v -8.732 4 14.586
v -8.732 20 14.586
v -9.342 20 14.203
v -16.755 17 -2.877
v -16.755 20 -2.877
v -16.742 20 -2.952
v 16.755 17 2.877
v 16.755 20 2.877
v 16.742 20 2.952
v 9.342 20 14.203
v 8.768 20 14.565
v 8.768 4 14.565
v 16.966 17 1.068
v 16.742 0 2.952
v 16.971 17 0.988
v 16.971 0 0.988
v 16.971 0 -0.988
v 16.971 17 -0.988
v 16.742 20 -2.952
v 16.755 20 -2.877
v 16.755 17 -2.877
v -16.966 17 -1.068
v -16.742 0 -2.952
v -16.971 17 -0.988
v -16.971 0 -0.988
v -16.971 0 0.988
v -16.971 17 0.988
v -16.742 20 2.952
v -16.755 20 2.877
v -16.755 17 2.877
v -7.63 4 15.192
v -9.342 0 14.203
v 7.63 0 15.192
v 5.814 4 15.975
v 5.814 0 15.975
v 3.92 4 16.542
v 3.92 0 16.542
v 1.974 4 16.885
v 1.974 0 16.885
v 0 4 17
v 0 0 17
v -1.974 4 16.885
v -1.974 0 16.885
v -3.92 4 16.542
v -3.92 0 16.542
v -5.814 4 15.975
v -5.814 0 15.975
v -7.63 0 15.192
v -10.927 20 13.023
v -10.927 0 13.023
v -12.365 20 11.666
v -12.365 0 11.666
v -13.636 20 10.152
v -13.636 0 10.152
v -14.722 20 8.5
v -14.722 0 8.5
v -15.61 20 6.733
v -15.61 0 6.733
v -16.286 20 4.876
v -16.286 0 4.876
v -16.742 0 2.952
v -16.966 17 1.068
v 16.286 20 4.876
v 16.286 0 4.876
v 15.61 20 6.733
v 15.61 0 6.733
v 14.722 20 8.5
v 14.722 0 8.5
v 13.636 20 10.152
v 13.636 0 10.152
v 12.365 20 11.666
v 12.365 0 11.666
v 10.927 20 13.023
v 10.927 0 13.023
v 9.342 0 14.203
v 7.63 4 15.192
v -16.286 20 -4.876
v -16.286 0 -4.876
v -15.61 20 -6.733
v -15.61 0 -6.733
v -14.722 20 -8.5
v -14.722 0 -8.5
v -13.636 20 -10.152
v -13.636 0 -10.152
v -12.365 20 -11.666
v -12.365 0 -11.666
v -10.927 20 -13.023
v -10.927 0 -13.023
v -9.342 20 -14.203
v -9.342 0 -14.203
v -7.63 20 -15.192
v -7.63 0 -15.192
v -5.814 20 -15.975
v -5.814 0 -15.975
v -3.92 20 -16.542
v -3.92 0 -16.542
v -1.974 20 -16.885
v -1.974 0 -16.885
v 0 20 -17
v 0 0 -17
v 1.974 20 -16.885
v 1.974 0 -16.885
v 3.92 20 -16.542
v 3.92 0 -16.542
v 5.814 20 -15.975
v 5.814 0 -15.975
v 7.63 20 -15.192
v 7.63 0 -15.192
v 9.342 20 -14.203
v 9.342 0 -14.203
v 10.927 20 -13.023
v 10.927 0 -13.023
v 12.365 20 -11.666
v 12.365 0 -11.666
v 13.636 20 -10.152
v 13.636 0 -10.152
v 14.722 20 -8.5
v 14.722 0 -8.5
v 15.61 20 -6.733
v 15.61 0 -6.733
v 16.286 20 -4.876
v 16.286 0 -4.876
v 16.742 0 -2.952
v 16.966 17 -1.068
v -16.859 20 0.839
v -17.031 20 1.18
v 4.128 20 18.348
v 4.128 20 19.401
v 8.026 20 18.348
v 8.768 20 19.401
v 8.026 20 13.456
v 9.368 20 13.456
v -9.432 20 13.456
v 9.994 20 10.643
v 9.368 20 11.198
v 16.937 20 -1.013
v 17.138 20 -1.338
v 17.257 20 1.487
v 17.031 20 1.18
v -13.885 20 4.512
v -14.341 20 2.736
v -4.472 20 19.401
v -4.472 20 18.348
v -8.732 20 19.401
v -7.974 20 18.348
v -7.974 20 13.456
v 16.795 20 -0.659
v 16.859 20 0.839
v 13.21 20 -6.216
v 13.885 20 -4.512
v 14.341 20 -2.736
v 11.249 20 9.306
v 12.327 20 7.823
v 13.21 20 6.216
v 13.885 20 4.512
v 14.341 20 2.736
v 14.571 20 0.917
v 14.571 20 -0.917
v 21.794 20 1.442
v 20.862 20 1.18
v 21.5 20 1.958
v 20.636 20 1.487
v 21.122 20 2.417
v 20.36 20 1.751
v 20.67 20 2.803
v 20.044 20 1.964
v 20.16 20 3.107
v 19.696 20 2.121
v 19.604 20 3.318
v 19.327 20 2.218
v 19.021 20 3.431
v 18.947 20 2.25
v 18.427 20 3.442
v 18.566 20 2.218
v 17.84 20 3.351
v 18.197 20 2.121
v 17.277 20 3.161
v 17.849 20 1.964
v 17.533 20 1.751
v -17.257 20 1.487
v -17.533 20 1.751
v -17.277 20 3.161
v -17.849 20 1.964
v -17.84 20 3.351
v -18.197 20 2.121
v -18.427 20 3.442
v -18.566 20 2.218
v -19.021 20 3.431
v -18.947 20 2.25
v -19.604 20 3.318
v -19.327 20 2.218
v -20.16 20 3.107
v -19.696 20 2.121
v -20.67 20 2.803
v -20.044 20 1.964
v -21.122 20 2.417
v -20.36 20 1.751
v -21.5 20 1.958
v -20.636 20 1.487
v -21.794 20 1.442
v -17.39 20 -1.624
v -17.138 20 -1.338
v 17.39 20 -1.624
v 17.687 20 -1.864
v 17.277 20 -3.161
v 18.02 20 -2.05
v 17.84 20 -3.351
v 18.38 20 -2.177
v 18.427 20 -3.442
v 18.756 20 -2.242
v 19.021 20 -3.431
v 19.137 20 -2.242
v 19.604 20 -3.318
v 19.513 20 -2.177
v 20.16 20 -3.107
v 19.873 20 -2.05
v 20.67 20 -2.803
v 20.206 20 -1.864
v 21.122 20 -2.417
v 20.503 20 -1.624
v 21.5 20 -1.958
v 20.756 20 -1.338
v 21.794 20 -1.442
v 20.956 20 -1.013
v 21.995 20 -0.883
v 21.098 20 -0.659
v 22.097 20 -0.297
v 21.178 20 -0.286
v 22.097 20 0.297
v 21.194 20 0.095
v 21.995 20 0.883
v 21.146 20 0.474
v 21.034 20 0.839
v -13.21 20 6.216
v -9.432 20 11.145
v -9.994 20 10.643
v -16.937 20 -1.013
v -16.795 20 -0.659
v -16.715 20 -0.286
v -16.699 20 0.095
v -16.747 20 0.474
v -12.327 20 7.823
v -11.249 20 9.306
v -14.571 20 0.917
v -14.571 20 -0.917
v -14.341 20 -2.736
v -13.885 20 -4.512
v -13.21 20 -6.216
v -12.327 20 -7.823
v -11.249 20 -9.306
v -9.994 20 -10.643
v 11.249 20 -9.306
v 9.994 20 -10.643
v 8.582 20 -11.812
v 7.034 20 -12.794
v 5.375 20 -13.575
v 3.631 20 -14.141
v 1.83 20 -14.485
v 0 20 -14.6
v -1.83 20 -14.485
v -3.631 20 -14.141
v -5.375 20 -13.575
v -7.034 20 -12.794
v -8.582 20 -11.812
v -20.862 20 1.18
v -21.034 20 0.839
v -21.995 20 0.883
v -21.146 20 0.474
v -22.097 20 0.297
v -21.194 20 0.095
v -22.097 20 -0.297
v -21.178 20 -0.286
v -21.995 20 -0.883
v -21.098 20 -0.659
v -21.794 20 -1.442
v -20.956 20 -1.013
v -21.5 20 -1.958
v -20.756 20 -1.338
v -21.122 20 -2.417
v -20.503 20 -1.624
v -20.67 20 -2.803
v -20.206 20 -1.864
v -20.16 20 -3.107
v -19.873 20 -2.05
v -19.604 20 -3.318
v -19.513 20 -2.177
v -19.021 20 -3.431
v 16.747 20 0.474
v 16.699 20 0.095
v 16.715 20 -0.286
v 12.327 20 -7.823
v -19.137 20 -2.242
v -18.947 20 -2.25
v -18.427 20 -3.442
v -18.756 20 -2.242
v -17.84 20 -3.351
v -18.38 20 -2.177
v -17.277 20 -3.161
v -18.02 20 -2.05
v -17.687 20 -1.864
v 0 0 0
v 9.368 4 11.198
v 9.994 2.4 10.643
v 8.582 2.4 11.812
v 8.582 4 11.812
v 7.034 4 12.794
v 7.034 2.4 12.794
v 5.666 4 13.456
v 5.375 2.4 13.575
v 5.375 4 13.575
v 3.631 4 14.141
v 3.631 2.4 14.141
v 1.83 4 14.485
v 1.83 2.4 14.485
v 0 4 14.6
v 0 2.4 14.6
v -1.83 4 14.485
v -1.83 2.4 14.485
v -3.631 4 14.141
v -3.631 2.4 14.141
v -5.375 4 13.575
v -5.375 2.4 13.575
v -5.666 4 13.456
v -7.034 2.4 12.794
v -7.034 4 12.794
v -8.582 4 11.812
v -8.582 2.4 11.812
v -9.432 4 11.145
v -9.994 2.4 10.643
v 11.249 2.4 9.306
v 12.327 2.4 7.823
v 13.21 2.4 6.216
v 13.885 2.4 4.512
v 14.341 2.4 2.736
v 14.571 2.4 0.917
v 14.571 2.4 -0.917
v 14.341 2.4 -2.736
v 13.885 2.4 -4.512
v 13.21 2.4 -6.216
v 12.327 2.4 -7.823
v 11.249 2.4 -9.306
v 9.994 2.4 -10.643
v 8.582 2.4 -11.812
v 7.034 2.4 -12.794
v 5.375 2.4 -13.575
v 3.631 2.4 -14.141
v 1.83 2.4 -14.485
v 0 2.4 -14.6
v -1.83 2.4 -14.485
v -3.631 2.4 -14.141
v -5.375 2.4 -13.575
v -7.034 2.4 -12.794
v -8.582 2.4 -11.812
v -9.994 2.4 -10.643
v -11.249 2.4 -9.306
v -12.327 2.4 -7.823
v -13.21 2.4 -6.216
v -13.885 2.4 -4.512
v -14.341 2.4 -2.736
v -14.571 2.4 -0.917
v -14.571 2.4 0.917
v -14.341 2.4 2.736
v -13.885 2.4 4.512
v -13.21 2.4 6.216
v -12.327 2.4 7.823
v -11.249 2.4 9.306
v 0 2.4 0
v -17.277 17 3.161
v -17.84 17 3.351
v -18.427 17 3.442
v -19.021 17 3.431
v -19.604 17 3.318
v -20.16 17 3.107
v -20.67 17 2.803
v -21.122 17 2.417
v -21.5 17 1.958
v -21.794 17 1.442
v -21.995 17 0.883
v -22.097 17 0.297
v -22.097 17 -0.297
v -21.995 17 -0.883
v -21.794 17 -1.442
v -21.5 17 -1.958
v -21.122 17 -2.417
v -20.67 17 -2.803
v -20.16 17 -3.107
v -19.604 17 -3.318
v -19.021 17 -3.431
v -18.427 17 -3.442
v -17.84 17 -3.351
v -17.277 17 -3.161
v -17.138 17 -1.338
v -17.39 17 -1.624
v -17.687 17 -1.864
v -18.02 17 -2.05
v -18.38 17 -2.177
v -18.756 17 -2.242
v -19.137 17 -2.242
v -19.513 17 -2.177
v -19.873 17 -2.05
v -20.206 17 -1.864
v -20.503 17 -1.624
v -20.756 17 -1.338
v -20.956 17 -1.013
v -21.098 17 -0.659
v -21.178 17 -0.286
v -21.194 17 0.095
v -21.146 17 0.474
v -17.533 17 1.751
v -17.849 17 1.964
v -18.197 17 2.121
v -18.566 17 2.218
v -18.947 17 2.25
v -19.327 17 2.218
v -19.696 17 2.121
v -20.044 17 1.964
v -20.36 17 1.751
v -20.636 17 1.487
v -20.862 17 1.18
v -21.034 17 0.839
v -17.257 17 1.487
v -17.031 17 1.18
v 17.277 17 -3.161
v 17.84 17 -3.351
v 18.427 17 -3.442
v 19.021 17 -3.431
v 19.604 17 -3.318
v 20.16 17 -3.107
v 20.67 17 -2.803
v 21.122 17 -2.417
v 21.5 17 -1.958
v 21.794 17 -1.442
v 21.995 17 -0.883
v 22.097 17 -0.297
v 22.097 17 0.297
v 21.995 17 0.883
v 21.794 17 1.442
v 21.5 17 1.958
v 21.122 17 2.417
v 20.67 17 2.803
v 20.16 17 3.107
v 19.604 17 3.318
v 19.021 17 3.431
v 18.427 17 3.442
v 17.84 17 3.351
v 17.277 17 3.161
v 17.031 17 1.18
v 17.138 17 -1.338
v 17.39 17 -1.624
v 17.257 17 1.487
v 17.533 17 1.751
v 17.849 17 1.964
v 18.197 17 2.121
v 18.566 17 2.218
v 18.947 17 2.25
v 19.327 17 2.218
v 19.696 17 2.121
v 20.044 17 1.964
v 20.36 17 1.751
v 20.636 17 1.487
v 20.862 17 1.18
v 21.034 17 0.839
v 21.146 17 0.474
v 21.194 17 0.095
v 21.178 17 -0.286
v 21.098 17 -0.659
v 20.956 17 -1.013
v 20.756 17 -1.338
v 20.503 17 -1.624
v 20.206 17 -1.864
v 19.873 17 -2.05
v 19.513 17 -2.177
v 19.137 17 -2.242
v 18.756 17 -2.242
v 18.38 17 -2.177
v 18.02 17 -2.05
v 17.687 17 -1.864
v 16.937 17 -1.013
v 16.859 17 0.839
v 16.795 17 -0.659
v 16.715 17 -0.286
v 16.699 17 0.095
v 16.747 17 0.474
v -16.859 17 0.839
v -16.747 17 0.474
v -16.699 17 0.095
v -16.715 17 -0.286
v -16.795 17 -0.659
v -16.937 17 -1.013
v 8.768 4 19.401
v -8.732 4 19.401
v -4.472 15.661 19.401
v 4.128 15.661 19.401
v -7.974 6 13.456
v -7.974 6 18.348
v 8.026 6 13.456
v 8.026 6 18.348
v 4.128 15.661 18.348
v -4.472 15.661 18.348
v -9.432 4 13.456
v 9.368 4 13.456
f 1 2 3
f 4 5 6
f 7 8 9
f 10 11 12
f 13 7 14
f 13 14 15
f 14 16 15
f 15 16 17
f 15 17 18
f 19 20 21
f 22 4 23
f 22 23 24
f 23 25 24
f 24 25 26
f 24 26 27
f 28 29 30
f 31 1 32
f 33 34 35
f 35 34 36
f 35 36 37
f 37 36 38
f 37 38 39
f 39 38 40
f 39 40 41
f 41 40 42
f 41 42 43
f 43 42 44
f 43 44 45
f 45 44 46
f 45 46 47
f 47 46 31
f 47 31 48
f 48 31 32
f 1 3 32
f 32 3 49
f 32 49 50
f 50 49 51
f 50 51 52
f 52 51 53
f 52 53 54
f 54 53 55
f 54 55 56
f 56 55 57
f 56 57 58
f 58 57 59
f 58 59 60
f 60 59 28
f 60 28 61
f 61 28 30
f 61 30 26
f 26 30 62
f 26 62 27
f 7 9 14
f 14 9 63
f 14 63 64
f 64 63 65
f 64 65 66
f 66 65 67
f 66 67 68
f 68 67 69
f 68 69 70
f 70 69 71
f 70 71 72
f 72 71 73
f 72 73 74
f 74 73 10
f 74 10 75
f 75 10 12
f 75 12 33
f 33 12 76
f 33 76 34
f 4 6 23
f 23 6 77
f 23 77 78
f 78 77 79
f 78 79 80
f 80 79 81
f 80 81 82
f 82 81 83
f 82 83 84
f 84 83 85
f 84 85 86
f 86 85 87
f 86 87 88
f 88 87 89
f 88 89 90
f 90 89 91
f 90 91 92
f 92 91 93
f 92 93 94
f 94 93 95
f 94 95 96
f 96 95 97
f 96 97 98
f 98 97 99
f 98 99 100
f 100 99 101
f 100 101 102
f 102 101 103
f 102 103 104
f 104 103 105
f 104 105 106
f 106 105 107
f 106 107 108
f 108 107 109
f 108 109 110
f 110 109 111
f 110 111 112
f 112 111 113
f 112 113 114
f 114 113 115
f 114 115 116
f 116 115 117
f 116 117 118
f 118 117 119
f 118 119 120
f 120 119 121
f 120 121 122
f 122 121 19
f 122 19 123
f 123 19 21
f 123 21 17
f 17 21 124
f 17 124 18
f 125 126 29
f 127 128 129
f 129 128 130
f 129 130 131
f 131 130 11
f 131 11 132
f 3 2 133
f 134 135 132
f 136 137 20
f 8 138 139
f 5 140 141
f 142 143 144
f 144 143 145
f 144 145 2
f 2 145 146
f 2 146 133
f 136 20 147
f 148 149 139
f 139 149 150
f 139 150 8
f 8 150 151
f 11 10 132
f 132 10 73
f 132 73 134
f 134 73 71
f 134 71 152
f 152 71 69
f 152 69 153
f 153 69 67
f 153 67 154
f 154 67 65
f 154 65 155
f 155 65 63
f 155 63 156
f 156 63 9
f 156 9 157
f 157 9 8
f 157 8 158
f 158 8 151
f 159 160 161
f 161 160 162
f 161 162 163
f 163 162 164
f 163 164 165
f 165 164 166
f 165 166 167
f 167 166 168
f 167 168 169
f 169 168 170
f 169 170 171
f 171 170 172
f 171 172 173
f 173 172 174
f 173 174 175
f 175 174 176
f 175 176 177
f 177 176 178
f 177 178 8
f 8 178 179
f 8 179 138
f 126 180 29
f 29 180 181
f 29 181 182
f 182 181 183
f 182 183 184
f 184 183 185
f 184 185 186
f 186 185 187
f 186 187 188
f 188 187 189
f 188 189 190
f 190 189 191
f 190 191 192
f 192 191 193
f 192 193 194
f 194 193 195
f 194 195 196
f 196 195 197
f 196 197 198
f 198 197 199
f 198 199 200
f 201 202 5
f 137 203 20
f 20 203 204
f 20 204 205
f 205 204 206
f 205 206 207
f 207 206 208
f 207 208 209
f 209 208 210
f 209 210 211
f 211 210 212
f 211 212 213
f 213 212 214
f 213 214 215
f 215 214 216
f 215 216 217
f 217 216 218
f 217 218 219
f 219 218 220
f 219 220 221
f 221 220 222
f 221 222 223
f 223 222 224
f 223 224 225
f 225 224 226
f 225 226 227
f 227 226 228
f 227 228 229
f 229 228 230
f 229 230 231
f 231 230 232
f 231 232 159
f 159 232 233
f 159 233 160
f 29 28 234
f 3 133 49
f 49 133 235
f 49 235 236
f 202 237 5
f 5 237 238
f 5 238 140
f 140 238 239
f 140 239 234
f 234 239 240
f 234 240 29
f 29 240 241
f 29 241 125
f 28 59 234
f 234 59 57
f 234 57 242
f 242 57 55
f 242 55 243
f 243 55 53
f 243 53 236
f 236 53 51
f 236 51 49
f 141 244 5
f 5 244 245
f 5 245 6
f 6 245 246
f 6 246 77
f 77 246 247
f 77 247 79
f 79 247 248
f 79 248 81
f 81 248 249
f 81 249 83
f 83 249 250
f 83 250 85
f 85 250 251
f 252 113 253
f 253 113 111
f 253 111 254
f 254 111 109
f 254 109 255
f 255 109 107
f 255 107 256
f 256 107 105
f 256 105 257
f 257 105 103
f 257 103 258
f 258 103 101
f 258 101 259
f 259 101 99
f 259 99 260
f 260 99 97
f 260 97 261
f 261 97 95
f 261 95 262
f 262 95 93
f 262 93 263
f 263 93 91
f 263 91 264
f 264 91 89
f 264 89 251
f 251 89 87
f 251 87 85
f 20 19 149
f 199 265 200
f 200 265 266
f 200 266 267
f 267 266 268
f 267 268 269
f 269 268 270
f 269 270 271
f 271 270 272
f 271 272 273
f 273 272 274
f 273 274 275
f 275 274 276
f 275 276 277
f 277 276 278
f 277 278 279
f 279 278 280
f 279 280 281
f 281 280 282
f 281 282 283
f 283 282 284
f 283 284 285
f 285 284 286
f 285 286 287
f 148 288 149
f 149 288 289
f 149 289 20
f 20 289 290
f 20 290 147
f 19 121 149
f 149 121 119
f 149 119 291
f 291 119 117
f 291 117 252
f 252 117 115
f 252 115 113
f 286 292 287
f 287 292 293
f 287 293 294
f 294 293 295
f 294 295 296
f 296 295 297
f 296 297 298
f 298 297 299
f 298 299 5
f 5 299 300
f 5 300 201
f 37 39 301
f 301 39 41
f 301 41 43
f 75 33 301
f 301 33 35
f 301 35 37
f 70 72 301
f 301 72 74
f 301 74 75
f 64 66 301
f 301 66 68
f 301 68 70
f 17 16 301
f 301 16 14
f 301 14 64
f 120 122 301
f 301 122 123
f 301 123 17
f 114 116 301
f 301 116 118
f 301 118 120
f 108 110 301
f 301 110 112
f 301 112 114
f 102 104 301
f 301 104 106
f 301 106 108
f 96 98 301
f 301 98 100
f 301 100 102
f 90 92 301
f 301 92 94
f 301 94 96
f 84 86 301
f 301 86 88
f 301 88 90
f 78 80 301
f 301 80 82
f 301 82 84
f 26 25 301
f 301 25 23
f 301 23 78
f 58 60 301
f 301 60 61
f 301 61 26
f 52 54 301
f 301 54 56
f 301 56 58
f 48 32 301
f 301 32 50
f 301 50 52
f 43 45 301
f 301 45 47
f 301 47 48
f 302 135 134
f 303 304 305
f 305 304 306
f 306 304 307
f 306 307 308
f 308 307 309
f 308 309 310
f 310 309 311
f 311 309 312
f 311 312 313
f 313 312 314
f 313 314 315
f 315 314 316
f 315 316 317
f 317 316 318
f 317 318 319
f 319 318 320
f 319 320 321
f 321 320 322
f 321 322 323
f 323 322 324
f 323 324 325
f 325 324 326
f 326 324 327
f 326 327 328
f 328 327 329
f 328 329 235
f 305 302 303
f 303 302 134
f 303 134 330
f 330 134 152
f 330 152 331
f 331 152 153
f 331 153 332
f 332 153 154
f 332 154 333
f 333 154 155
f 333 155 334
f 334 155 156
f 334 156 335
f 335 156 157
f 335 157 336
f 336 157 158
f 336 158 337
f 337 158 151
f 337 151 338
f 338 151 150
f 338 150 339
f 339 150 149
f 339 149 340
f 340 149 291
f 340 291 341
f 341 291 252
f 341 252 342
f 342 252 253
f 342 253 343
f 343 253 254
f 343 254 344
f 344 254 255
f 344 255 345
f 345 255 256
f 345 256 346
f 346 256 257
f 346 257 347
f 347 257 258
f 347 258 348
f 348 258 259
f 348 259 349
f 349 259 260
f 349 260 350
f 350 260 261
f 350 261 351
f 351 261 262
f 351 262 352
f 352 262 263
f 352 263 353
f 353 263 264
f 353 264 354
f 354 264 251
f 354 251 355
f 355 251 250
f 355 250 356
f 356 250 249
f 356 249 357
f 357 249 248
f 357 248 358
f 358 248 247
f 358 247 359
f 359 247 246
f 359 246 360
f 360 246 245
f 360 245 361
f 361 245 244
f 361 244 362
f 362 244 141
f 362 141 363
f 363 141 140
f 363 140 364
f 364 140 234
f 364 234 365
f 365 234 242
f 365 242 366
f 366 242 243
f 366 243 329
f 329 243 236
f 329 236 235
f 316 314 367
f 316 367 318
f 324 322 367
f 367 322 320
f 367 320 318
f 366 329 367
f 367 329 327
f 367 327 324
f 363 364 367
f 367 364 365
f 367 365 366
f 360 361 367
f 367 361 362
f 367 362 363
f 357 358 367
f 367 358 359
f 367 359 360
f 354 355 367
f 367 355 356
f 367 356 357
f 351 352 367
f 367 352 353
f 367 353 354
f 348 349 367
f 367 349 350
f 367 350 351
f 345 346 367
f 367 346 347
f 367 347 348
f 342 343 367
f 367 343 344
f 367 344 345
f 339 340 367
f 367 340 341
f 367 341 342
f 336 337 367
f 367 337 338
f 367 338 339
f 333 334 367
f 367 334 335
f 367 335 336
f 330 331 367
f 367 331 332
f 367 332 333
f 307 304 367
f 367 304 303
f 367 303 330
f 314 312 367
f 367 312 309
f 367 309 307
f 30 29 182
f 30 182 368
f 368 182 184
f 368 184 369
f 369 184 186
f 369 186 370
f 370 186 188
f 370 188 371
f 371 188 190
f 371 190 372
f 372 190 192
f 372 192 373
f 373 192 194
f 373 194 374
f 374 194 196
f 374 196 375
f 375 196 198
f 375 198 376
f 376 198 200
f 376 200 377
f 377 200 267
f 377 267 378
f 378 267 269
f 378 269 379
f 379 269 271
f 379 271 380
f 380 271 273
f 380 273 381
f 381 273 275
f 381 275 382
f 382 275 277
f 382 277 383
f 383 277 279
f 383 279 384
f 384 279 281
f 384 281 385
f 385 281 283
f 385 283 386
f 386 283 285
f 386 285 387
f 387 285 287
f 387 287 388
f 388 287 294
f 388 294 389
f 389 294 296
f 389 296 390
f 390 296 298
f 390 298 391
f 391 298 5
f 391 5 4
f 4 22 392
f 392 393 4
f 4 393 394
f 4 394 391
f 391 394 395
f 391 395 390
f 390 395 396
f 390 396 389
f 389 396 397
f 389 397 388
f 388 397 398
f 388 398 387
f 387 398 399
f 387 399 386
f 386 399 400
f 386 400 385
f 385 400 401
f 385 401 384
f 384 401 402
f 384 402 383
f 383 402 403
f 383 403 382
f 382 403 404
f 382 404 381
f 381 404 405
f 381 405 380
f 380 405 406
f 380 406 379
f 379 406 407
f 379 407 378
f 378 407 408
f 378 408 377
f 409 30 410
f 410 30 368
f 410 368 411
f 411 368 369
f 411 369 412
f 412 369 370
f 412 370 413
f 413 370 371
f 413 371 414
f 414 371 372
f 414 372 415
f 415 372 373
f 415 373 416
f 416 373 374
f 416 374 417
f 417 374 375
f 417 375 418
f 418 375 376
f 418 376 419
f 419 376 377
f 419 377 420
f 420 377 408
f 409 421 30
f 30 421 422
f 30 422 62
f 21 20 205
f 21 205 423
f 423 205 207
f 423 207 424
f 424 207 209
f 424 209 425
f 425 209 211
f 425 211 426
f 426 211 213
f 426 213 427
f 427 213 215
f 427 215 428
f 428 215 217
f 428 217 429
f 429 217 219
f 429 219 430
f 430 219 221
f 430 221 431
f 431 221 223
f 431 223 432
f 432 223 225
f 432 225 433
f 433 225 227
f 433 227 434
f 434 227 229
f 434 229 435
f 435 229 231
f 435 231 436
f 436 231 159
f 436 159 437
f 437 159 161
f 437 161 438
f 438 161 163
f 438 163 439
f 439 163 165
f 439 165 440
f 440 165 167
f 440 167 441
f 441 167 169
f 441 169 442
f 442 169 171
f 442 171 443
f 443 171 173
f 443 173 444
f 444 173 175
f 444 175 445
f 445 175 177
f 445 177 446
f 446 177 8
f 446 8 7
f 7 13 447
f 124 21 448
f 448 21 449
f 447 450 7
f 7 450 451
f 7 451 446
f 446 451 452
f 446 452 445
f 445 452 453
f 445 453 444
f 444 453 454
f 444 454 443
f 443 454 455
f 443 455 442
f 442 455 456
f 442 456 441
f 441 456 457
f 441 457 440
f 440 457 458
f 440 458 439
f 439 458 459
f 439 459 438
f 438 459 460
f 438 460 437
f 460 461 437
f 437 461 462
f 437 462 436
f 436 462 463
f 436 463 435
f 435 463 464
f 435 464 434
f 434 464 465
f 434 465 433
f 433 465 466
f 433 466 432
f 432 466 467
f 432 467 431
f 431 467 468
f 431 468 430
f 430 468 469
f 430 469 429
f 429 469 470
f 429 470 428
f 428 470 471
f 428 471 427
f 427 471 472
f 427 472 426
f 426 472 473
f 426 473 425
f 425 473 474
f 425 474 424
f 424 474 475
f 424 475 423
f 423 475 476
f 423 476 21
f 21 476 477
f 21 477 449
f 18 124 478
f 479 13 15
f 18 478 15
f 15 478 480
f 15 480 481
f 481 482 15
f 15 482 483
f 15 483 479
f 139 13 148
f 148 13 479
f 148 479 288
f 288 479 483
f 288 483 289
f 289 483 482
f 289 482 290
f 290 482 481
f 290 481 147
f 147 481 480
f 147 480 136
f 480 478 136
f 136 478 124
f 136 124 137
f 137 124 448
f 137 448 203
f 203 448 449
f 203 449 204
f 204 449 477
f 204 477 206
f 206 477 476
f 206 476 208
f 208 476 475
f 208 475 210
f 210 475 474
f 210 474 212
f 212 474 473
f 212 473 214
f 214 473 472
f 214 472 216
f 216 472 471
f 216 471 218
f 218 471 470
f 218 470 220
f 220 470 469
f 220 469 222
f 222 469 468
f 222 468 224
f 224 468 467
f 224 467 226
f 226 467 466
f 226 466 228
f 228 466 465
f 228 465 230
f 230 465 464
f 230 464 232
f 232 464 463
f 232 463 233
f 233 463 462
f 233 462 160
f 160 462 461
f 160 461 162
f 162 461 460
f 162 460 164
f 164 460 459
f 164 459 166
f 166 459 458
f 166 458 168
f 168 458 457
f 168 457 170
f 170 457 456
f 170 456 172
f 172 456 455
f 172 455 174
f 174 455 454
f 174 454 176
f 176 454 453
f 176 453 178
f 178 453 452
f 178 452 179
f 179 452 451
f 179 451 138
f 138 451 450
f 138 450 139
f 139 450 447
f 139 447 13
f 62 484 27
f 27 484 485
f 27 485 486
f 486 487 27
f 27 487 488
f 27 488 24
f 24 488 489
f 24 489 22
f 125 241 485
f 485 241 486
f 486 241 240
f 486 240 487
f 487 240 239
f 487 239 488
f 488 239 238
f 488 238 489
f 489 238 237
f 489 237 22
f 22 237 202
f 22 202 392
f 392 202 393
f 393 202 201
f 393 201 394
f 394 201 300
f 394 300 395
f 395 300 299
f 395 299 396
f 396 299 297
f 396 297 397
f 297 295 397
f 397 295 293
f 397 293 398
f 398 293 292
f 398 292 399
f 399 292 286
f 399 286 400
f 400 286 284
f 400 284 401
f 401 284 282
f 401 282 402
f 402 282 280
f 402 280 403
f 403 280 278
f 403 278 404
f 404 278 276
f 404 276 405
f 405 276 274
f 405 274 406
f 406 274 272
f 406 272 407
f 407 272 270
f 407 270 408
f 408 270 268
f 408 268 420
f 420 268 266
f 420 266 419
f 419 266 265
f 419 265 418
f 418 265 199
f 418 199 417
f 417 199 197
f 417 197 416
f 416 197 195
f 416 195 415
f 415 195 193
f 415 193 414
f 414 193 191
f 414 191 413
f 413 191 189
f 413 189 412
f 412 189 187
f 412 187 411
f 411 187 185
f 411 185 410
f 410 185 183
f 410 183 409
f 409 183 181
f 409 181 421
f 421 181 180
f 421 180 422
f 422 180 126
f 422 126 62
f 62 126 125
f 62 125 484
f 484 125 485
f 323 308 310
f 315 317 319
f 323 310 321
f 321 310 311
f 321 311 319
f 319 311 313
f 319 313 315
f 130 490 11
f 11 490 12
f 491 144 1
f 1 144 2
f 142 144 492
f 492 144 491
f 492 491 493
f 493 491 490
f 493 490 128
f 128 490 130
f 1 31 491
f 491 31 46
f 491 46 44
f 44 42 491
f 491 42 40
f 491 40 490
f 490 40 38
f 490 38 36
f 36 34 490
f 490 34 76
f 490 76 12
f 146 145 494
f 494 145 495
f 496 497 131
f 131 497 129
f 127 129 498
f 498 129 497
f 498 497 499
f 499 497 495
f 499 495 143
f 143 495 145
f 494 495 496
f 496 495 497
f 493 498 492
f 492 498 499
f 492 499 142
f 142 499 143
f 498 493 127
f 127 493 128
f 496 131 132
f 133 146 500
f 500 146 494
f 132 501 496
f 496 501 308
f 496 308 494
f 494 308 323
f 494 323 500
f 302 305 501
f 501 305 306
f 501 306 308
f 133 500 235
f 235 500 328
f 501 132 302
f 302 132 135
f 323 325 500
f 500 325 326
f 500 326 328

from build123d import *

# Parameters (mm, degrees)
SKETCH1_R           = 17
BOSS_EXTRUDE1_DEPTH = 20
SHELL1_T            = -2.4
SKETCH2_R           = 3.45
BOSS_EXTRUDE3_DEPTH = 3
SKETCH4_R           = 2.25
CUT_EXTRUDE1_DEPTH  = 3
SKETCH5_W           = 17.5
SKETCH5_H           = 7.7
BOSS_EXTRUDE4_DEPTH = 16
SKETCH6_W           = 16
SKETCH6_H           = 8.6
CUT_EXTRUDE2_DEPTH  = 14
SKETCH7_W           = 8.6
SKETCH7_H           = 5.8
CUT_EXTRUDE3_DEPTH  = 5
FILLET4_R           = 1
SKETCH8_W           = 18.8
SKETCH8_H           = 3
CUT_EXTRUDE4_DEPTH  = 16


with BuildPart() as part:
    # Sketch1 → Boss-Extrude1 (new body)
    with BuildSketch(Plane(origin=(0, 0, 0), x_dir=(1, 0, 0), z_dir=(0, 1, 0))):
        with Locations(Location((0, 0, 0), (0, 0, 270))):
            Circle(SKETCH1_R)
    extrude(amount=BOSS_EXTRUDE1_DEPTH)

    # Shell1
    shell1_openings = [part.faces().sort_by_distance(p)[0] for p in [
        (0, 20, 0),
    ]]
    offset(amount=SHELL1_T, openings=shell1_openings, kind=Kind.INTERSECTION)

    # Sketch2 → Boss-Extrude3 (add)
    with BuildSketch(Plane(origin=(0, 20, 0), x_dir=(1, 0, 0), z_dir=(0, 1, 0))):
        with Locations((18.659372003, 0)):
            Circle(SKETCH2_R)
        with Locations((-18.659372003, 0)):
            Circle(SKETCH2_R)
    extrude(amount=-BOSS_EXTRUDE3_DEPTH)

    # Sketch4 → Cut-Extrude1 (cut)
    with BuildSketch(Plane(origin=(0, 20, 0), x_dir=(1, 0, 0), z_dir=(0, 1, 0))):
        with Locations(Location((18.95, 0, 0), (0, 0, 270))):
            Circle(SKETCH4_R)
        with Locations(Location((-18.95, 0, 0), (0, 0, 331.816850826))):
            Circle(SKETCH4_R)
    extrude(amount=-CUT_EXTRUDE1_DEPTH, mode=Mode.SUBTRACT)

    # Sketch5 → Boss-Extrude4 (add)
    with BuildSketch(Plane(origin=(0, 20, 0), x_dir=(1, 0, 0), z_dir=(0, 1, 0))):
        with Locations((0.01757968, -15.550633972)):
            Rectangle(SKETCH5_W, SKETCH5_H)
    extrude(amount=-BOSS_EXTRUDE4_DEPTH)

    # Sketch6 → Cut-Extrude2 (cut)
    with BuildSketch(Plane(origin=(0, 20, 0), x_dir=(1, 0, 0), z_dir=(0, 1, 0))):
        with Locations((0.025977535, -14.047647825)):
            Rectangle(SKETCH6_W, SKETCH6_H)
    extrude(amount=-CUT_EXTRUDE2_DEPTH, mode=Mode.SUBTRACT)

    # Sketch7 → Cut-Extrude3 (cut)
    with BuildSketch(Plane.XY.offset(19.400633972)):
        with Locations((-0.172487463, 18.560997168)):
            Rectangle(SKETCH7_W, SKETCH7_H)
    extrude(amount=-CUT_EXTRUDE3_DEPTH, mode=Mode.SUBTRACT)

    # Fillet4
    fillet4_edges = [part.edges().sort_by_distance(p)[0] for p in [
        (0, 4, 11.700633972),
    ]]
    fillet(fillet4_edges, radius=FILLET4_R)

    # Sketch8 → Cut-Extrude4 (cut)
    with BuildSketch(Plane(origin=(0, 20, 0), x_dir=(1, 0, 0), z_dir=(0, 1, 0))):
        with Locations((-0.031709419, -11.955798022)):
            Rectangle(SKETCH8_W, SKETCH8_H)
    extrude(amount=-CUT_EXTRUDE4_DEPTH, mode=Mode.SUBTRACT)


solid = part.part
